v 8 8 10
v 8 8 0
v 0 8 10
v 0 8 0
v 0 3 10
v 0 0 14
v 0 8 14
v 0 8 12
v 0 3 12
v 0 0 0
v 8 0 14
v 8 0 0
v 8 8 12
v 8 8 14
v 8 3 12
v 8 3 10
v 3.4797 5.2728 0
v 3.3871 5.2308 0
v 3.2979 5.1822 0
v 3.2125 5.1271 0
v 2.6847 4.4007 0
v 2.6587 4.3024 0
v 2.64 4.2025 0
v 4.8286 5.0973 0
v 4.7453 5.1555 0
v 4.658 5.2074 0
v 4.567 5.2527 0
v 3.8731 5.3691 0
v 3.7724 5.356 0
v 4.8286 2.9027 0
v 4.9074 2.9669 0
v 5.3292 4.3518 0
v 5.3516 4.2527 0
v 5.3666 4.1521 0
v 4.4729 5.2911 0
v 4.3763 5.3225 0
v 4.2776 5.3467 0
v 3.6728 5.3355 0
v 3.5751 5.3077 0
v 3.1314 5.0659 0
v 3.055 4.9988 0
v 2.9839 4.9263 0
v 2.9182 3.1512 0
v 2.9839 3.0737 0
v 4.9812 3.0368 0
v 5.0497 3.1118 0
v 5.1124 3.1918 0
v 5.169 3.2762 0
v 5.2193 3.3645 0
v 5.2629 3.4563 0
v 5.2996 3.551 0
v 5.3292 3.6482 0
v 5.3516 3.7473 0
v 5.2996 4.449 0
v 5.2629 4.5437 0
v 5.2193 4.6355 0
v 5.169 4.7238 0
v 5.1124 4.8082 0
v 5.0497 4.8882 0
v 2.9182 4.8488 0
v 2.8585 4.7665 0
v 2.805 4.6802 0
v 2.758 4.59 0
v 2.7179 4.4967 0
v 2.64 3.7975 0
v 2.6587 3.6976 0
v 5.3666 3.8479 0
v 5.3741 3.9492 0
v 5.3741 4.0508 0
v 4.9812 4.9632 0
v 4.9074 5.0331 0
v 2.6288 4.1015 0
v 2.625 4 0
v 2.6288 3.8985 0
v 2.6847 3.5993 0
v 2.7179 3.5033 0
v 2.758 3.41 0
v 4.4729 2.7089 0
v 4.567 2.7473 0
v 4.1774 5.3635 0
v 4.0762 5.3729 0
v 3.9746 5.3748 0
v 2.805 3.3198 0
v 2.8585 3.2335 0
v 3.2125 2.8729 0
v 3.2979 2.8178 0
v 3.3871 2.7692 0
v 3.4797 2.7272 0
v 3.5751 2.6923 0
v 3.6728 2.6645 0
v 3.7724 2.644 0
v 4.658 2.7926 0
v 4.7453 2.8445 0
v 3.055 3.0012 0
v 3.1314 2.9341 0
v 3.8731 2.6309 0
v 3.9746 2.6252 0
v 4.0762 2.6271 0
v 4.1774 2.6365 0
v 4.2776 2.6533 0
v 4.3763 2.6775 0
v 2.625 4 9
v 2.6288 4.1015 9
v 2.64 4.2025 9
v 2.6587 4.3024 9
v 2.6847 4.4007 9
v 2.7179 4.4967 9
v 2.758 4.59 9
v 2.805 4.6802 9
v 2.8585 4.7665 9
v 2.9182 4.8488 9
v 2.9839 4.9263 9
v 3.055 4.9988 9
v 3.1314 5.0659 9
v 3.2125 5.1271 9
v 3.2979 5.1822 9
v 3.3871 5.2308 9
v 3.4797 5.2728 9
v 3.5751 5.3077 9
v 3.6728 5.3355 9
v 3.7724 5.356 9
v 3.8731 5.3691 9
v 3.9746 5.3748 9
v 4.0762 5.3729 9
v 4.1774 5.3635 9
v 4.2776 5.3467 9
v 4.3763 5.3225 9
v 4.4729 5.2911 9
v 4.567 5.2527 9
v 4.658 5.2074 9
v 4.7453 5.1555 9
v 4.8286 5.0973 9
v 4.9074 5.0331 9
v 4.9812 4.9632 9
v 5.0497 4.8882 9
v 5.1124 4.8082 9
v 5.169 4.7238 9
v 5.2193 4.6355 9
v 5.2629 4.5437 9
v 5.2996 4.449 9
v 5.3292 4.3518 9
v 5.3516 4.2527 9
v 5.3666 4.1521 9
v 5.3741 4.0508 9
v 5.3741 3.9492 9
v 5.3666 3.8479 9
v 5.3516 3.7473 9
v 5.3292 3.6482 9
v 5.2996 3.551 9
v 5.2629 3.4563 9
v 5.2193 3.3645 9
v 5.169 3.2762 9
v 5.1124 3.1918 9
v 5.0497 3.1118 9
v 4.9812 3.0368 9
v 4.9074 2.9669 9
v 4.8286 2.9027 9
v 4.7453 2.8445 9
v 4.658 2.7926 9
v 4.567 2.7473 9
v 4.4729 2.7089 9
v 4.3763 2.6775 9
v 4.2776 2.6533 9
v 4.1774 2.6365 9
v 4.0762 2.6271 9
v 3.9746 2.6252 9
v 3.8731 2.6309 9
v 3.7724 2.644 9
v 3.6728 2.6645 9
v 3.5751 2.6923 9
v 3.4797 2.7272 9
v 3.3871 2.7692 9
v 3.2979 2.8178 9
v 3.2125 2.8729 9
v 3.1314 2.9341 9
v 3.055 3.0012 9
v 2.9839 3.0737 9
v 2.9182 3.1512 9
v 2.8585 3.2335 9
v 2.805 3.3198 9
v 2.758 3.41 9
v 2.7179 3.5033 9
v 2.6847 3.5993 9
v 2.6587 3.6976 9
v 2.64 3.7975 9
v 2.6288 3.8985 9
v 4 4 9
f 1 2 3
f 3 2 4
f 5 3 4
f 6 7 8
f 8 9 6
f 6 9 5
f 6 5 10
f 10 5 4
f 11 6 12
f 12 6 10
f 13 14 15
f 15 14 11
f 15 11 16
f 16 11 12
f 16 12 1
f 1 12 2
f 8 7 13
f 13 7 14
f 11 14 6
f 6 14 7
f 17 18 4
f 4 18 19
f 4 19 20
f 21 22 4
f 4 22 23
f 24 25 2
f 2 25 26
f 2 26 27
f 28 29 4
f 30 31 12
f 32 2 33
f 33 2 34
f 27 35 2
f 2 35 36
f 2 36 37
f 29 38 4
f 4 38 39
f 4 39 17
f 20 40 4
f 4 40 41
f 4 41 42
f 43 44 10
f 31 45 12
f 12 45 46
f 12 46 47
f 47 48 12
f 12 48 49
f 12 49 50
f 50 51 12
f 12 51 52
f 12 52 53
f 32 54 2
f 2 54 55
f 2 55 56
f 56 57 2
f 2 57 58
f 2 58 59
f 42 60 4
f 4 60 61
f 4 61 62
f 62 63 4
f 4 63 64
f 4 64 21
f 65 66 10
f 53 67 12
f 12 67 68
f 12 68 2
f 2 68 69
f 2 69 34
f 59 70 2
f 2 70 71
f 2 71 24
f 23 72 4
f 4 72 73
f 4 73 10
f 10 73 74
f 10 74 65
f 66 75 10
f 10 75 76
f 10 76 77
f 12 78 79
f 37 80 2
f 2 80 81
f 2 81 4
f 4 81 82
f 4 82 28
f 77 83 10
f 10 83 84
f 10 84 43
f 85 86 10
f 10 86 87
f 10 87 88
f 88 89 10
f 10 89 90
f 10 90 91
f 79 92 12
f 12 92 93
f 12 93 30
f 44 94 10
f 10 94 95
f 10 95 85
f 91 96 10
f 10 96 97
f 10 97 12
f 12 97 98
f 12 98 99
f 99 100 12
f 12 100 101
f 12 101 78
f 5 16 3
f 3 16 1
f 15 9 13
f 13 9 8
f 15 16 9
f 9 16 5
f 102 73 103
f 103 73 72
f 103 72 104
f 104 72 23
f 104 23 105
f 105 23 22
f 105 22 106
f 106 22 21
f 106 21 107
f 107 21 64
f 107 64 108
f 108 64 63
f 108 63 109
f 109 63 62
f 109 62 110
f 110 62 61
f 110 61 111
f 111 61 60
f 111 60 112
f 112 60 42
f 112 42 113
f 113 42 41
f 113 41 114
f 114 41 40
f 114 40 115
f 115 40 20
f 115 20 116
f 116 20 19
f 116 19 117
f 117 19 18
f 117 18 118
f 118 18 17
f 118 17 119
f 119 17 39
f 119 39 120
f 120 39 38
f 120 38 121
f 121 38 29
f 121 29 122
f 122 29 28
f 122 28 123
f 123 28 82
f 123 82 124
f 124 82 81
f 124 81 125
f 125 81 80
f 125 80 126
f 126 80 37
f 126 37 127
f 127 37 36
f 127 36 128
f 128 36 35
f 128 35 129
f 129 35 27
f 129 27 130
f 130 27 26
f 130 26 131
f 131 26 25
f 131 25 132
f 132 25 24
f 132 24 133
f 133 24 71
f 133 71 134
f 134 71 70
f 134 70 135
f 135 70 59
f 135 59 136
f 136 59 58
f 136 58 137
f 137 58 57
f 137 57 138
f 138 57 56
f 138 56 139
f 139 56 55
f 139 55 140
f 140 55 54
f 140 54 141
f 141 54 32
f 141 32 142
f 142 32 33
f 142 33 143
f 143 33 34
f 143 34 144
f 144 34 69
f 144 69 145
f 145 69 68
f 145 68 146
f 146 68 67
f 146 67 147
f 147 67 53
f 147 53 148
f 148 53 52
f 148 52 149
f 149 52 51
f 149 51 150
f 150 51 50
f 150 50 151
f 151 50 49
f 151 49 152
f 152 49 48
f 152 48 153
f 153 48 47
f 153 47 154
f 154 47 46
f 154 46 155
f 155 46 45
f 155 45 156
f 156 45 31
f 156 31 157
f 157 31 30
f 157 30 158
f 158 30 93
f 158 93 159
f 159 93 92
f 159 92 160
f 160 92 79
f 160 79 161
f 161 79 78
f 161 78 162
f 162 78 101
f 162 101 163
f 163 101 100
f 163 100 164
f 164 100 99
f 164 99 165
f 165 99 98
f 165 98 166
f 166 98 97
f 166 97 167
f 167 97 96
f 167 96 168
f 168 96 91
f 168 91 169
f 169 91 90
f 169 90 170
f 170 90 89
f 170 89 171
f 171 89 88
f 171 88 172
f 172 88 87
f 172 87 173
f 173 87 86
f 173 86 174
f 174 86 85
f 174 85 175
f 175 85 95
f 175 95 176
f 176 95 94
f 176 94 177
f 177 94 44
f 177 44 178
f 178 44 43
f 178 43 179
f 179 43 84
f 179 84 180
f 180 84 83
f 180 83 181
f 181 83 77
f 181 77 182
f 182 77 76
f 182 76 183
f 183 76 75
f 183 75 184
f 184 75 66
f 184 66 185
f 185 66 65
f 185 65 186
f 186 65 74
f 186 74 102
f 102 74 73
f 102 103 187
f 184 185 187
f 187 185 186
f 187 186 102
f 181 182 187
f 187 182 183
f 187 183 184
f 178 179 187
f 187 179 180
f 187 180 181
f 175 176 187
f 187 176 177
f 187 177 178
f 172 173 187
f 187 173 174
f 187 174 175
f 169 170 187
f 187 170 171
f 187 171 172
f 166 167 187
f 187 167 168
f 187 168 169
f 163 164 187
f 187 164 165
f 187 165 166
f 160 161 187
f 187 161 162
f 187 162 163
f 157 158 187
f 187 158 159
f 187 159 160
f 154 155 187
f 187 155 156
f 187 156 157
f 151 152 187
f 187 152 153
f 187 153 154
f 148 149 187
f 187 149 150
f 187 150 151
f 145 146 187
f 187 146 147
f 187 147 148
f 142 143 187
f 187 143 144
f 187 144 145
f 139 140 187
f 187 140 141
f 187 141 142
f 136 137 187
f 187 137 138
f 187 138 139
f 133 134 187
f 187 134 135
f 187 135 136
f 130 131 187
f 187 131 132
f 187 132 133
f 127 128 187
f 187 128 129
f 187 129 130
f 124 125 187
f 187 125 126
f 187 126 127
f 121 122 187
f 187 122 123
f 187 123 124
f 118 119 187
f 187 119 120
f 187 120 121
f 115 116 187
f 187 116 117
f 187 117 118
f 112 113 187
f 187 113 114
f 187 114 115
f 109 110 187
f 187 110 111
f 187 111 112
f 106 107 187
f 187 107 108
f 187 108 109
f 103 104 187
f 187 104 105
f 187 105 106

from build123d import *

# Parameters (mm, degrees)
SZKIC1_W                    = 8
SZKIC1_H                    = 8
DODANIE_WYCI_GNI_CIE1_DEPTH = 14
WYTNIJ_WYCI_GNI_CIE1_DEPTH  = 5
SZKIC3_R                    = 1.375
WYTNIJ_WYCI_GNI_CIE2_DEPTH  = 9


with BuildPart() as part:
    # Szkic1 → Dodanie-wyciągnięcie1 (new body)
    with BuildSketch(Plane.XY):
        with Locations((4, 4)):
            Rectangle(SZKIC1_W, SZKIC1_H)
    extrude(amount=DODANIE_WYCI_GNI_CIE1_DEPTH)

    # Szkic2 → Wytnij-wyciągnięcie1 (cut)
    with BuildSketch(Plane(origin=(0, 8, 0), x_dir=(1, 0, 0), z_dir=(0, 1, 0))):
        Polygon((0, -10), (5, -10), (8, -10), (8, -12), (5, -12), (0, -12), align=None)
    extrude(amount=-WYTNIJ_WYCI_GNI_CIE1_DEPTH, mode=Mode.SUBTRACT)

    # Szkic3 → Wytnij-wyciągnięcie2 (cut)
    with BuildSketch(Plane(origin=(0, 0, 0), x_dir=(-1, 0, 0), z_dir=(0, 0, -1))):
        with Locations((-4, 4)):
            Circle(SZKIC3_R)
    extrude(amount=-WYTNIJ_WYCI_GNI_CIE2_DEPTH, mode=Mode.SUBTRACT)


solid = part.part
